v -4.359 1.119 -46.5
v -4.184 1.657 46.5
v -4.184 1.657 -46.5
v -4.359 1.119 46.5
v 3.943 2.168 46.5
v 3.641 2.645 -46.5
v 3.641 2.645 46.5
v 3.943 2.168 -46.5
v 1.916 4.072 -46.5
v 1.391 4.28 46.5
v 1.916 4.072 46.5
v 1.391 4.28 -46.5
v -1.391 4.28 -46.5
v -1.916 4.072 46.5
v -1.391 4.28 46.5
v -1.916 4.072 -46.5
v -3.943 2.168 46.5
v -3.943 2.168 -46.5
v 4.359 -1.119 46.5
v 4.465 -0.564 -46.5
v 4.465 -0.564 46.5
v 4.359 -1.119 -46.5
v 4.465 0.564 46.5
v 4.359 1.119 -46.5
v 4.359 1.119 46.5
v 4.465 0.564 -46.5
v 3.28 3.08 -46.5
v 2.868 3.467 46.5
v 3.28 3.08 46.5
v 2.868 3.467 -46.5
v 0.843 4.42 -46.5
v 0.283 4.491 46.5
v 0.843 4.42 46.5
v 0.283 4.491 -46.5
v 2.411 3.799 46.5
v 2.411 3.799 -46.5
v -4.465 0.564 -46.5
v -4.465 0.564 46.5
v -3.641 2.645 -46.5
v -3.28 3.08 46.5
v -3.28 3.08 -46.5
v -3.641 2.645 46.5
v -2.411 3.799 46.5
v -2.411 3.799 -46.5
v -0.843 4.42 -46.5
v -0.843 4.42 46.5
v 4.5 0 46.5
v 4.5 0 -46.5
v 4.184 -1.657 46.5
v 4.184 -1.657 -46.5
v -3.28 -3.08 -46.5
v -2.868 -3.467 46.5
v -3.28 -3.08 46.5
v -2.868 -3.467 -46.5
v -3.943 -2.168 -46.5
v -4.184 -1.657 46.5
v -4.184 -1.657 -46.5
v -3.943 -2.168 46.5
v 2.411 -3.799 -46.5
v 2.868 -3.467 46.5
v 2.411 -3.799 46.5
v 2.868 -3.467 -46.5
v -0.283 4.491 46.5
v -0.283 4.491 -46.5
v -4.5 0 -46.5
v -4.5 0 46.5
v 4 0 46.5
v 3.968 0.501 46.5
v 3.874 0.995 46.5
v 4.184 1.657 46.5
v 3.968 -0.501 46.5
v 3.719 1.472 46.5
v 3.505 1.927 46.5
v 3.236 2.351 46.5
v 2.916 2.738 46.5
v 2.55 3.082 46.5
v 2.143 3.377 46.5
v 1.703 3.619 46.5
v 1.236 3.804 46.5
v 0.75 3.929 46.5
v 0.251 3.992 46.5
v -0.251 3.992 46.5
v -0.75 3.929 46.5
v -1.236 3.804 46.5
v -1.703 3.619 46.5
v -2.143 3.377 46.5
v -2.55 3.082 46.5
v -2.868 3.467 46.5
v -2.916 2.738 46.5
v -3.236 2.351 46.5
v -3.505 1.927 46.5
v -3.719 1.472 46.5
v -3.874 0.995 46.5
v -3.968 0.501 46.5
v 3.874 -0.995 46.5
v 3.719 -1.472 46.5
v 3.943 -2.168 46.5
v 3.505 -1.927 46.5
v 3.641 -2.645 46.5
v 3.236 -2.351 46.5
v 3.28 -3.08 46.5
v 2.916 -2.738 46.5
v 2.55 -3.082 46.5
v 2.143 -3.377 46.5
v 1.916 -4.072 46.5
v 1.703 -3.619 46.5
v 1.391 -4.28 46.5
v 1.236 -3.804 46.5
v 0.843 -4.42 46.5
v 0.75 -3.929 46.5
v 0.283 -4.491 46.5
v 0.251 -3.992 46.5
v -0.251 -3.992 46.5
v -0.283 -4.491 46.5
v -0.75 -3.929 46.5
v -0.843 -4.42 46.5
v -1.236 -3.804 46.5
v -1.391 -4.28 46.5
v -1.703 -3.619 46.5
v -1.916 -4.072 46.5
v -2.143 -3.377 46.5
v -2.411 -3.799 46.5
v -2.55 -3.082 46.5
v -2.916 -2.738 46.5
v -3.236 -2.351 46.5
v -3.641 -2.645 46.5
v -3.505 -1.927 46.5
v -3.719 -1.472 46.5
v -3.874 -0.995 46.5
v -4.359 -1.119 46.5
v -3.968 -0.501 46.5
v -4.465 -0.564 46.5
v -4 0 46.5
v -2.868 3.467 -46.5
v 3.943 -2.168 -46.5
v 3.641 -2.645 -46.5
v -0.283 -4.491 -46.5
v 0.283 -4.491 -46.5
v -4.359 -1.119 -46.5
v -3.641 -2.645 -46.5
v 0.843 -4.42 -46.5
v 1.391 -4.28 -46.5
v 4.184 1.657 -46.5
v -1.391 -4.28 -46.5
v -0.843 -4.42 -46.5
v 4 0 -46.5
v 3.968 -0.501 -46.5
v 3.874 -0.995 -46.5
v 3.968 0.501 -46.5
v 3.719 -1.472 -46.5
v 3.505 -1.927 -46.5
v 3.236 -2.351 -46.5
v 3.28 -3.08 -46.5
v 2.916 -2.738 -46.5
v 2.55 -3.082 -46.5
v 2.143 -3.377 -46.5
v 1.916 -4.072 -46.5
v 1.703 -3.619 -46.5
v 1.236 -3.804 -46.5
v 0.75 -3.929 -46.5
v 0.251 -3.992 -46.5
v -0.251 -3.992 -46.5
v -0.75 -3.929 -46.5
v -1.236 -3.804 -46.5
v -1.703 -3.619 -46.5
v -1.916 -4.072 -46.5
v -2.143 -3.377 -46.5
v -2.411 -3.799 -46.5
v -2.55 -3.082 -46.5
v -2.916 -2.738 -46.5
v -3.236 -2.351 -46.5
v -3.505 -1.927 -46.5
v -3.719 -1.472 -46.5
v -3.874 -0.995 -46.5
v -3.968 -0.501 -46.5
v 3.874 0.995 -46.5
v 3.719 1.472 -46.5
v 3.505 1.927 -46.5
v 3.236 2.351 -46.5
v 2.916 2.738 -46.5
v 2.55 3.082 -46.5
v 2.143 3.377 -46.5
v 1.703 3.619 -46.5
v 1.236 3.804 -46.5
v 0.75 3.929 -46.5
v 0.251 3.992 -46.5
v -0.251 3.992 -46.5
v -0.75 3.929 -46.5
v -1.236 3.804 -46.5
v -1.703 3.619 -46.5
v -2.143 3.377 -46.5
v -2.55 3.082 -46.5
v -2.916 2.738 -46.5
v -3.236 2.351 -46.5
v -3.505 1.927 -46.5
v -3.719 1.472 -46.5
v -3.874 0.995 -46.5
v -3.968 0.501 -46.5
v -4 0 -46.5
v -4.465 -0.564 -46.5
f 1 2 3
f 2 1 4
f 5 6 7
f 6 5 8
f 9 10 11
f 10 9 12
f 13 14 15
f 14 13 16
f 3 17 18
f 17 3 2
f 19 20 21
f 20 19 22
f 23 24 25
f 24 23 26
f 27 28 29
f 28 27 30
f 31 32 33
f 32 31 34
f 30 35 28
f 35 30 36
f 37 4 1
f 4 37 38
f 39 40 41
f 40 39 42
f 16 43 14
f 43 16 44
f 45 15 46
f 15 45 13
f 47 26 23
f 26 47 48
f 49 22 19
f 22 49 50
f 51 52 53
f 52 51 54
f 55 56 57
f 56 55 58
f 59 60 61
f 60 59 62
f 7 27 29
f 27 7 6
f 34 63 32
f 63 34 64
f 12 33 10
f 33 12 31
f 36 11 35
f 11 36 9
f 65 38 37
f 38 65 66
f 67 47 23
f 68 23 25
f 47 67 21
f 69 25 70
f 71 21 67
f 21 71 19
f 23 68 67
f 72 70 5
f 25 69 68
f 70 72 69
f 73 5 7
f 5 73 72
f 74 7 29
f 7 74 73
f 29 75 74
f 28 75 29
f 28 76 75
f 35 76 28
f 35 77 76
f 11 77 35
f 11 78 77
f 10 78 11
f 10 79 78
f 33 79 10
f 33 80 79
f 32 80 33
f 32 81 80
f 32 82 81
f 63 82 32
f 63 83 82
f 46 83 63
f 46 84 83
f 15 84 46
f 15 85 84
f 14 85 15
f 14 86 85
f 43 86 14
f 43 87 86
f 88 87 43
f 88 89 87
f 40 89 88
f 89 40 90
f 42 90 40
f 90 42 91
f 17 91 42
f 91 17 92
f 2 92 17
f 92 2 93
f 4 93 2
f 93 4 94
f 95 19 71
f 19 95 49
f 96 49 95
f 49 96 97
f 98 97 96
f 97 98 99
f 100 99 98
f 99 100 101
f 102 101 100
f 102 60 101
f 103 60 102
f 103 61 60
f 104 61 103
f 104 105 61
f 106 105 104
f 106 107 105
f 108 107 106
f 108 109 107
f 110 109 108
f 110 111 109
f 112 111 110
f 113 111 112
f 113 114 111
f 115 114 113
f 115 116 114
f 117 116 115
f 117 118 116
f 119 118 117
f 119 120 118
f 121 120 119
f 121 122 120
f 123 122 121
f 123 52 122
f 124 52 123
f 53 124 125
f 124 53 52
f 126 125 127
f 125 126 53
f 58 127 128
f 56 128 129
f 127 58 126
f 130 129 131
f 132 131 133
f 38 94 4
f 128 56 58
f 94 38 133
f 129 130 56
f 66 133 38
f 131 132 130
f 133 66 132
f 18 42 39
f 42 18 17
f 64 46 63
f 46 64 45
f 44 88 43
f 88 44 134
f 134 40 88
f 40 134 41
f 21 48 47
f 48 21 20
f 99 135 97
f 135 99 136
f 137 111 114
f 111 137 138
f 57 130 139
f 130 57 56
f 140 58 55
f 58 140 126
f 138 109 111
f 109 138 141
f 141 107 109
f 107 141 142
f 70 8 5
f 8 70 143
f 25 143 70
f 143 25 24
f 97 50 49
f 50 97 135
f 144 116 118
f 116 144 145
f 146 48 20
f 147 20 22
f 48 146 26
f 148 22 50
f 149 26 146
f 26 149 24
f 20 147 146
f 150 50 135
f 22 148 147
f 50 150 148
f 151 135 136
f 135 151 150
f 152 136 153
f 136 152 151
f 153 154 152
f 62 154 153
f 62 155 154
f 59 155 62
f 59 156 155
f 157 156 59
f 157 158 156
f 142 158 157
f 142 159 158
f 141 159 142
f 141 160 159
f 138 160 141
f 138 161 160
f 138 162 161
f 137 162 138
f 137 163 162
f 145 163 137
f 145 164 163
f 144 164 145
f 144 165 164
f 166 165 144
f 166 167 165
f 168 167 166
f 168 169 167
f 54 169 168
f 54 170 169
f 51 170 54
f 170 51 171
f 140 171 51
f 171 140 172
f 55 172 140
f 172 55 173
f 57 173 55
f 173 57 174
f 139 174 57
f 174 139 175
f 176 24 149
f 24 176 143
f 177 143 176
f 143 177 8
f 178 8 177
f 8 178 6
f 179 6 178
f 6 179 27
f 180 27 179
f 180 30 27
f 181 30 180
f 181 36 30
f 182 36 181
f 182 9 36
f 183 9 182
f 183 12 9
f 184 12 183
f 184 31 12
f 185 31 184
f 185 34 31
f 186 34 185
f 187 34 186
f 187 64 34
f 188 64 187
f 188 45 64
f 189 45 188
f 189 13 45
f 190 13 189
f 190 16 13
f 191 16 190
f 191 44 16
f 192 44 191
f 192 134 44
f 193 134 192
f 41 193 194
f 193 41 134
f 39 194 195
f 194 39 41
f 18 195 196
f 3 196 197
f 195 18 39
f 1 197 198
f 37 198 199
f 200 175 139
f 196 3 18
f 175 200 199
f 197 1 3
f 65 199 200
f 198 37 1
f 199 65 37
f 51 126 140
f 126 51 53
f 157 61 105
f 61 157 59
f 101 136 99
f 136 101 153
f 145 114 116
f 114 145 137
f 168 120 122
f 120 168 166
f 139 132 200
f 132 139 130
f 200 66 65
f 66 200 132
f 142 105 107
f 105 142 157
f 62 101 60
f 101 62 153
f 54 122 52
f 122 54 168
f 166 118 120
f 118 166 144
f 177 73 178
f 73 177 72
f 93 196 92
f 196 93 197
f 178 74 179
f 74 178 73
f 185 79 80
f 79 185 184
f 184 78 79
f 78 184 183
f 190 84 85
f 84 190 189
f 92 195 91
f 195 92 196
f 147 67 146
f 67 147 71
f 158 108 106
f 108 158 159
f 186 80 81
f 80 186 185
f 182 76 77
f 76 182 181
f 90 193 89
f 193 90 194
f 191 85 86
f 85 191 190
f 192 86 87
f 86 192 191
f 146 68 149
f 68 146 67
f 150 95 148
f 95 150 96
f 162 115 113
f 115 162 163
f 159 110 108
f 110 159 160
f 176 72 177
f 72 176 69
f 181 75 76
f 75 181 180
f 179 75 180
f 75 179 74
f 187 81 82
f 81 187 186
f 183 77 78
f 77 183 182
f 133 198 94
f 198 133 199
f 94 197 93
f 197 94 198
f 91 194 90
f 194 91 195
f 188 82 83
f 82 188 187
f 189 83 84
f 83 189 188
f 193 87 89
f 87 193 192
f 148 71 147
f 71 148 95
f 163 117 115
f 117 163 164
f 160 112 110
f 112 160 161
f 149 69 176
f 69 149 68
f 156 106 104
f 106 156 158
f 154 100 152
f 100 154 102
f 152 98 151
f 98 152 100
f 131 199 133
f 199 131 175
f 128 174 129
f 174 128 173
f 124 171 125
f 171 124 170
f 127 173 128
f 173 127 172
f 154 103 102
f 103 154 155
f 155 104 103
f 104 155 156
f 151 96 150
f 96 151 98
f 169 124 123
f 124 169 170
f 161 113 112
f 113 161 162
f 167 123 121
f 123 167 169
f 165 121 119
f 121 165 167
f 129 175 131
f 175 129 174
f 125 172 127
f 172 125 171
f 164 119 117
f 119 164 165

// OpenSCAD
$fn = 50;


difference() {
	union() {
		translate(v = [0, 0, -46.5000000000]) {
			cylinder(h = 93, r = 4.5000000000);
		}
	}
	union() {
		translate(v = [0, 0, -100.0000000000]) {
			cylinder(h = 200, r = 4);
		}
	}
}
